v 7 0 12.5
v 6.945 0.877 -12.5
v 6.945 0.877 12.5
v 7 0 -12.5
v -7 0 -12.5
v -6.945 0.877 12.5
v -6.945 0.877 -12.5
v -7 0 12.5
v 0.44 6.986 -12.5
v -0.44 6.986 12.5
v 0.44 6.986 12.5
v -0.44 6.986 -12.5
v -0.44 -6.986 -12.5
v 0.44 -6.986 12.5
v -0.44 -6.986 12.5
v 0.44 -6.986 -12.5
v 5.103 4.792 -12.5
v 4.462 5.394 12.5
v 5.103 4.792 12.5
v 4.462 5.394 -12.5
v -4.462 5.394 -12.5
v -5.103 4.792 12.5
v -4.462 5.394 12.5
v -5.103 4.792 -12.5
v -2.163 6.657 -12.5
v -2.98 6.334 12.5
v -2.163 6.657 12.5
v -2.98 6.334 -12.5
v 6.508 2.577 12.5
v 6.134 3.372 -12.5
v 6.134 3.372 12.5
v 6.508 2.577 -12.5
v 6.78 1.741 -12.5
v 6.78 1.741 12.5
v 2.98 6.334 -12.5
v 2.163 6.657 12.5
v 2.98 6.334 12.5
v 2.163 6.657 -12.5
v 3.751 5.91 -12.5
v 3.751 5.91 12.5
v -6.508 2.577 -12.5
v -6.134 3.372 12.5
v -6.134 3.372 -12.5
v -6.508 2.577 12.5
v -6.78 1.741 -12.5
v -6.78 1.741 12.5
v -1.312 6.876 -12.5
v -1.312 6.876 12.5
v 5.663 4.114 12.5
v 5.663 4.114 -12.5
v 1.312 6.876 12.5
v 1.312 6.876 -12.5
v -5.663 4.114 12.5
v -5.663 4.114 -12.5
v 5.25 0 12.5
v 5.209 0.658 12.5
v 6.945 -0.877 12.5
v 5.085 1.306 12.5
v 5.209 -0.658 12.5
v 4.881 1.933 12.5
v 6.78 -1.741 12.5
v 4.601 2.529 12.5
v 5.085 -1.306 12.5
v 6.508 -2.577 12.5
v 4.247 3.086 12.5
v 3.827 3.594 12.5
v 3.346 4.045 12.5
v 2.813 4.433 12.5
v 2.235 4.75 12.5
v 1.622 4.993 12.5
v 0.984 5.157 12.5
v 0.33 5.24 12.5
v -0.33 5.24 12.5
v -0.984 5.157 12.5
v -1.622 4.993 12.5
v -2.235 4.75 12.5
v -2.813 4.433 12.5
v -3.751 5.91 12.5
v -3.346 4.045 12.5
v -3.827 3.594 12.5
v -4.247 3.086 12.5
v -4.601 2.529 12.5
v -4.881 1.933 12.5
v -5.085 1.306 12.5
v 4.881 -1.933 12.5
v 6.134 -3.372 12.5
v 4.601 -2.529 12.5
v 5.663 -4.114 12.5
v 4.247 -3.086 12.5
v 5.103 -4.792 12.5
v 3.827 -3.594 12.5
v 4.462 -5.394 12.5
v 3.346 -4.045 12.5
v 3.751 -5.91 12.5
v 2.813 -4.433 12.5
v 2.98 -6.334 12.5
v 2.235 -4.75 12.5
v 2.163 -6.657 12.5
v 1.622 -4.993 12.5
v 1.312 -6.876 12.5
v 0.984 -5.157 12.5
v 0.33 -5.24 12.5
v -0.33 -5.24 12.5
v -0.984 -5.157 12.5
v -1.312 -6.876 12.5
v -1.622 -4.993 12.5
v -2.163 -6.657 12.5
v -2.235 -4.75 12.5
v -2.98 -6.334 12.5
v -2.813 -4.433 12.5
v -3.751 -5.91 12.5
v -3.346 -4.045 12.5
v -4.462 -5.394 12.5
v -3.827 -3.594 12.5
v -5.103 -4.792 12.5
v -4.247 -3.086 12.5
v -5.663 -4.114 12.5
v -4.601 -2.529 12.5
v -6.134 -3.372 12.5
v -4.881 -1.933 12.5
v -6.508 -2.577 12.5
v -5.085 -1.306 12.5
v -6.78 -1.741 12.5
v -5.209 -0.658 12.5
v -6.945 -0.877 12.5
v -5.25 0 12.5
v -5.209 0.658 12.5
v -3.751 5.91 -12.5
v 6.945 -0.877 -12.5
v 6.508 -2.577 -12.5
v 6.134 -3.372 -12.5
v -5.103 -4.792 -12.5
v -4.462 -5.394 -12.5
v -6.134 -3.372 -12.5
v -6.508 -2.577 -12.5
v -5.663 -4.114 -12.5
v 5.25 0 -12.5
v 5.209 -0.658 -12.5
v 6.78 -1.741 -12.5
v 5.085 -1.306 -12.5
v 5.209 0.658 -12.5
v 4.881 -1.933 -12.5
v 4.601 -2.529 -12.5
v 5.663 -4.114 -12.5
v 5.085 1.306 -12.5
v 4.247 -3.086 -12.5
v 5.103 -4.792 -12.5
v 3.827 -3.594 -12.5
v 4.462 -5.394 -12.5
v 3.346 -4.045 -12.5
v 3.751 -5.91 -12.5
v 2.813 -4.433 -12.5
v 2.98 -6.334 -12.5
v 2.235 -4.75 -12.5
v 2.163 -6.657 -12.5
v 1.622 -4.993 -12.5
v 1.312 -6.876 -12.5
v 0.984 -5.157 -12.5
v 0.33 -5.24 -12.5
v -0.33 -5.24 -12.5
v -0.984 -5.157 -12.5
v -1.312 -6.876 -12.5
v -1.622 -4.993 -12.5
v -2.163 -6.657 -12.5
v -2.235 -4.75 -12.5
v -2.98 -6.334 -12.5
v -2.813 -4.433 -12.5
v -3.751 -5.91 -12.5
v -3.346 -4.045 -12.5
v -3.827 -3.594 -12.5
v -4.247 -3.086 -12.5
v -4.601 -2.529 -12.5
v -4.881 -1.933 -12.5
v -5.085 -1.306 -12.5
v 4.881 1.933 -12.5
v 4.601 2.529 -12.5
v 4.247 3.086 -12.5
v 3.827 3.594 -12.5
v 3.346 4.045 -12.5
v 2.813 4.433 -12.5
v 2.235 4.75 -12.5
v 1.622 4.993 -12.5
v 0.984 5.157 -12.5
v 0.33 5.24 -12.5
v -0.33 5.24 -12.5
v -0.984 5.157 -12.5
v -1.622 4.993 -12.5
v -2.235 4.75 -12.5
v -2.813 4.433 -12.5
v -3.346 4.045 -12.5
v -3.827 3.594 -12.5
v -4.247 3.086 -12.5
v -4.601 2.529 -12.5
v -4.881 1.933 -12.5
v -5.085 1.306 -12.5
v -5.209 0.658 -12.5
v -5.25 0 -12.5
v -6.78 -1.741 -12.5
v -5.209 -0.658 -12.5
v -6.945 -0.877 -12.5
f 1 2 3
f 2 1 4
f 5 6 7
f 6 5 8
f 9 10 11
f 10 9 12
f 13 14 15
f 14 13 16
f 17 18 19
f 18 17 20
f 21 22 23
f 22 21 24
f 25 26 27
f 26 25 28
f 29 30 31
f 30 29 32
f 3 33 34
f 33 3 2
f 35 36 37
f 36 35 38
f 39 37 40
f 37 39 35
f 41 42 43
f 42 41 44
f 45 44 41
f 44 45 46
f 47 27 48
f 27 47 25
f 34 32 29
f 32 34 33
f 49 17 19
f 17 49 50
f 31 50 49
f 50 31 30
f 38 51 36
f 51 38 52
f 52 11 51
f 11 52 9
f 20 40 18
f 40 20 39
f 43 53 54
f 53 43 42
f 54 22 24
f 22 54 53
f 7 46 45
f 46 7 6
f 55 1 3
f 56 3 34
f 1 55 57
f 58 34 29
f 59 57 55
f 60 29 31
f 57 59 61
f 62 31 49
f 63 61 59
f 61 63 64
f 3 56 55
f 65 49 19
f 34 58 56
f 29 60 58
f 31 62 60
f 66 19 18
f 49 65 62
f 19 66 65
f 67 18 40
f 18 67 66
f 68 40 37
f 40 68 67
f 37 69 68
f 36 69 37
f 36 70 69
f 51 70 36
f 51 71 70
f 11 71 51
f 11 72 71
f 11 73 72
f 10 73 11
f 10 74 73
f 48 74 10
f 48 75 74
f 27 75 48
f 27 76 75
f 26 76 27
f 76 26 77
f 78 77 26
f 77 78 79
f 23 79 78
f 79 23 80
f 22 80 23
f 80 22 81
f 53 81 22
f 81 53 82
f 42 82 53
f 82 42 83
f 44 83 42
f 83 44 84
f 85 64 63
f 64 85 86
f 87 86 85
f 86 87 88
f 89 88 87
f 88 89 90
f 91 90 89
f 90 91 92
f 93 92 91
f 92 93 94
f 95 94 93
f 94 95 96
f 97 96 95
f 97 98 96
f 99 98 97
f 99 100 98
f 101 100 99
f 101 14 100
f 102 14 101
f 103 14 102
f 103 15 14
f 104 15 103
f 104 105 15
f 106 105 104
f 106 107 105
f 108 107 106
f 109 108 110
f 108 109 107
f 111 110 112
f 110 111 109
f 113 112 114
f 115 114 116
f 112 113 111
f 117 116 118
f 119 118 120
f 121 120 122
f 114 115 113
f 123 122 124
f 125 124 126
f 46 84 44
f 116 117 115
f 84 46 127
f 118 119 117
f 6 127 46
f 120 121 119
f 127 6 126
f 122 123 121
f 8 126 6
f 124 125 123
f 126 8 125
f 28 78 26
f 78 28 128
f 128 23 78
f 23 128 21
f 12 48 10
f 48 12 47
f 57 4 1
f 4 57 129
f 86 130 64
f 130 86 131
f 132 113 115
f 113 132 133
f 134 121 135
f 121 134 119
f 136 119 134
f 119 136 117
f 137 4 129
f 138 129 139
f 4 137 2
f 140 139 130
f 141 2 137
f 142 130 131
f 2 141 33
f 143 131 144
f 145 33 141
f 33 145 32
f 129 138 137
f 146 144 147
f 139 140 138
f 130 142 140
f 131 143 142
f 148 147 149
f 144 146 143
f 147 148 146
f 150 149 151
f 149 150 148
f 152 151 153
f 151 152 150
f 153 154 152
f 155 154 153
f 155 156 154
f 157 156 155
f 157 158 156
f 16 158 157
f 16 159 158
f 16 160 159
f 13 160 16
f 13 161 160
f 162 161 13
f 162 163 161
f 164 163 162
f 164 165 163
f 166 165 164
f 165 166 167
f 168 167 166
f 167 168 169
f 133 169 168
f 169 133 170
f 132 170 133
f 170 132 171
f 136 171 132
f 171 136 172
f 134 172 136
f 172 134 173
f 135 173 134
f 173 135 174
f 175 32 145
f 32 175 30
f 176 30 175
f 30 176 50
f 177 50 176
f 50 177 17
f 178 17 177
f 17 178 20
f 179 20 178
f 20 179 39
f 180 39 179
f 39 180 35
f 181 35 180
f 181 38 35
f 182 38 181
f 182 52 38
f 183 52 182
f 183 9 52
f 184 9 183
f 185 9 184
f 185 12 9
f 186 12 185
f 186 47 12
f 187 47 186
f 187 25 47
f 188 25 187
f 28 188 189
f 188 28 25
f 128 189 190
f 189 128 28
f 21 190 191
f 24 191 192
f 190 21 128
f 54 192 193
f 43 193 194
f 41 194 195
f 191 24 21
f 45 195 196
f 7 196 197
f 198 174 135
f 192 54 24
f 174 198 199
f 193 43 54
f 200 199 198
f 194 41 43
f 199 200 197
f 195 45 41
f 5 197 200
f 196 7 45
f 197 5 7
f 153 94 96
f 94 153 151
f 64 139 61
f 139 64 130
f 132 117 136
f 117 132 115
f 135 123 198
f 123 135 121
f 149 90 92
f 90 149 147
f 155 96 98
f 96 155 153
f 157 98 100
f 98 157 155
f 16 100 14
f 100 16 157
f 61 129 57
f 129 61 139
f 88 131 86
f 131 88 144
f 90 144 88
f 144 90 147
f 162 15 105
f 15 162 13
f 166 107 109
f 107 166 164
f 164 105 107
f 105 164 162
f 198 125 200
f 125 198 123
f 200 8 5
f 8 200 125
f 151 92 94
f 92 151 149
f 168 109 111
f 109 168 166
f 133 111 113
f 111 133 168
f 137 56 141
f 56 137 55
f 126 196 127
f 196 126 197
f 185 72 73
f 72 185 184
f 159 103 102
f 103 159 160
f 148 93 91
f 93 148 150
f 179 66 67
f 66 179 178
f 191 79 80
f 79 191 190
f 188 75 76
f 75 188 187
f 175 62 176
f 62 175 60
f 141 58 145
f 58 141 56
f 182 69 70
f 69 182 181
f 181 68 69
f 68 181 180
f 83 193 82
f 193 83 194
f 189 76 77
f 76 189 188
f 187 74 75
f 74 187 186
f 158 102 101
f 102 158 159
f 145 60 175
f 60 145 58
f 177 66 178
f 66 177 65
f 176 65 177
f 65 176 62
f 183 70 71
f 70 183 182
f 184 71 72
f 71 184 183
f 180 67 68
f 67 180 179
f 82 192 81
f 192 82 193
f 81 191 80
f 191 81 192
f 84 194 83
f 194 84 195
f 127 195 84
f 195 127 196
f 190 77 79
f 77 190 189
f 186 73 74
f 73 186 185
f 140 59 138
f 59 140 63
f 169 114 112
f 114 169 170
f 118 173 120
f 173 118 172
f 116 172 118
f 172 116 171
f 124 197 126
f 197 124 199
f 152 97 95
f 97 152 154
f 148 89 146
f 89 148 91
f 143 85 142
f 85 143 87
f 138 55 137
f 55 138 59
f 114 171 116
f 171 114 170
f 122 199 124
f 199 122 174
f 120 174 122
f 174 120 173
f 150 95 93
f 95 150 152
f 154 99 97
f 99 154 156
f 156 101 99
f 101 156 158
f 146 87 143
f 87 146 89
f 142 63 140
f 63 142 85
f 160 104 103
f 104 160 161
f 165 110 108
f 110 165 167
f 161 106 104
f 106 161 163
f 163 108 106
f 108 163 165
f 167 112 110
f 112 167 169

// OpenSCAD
$fn = 50;


difference() {
	union() {
		translate(v = [0, 0, -12.5000000000]) {
			cylinder(h = 25, r = 7.0000000000);
		}
	}
	union() {
		translate(v = [0, 0, -100.0000000000]) {
			cylinder(h = 200, r = 5.2500000000);
		}
	}
}
